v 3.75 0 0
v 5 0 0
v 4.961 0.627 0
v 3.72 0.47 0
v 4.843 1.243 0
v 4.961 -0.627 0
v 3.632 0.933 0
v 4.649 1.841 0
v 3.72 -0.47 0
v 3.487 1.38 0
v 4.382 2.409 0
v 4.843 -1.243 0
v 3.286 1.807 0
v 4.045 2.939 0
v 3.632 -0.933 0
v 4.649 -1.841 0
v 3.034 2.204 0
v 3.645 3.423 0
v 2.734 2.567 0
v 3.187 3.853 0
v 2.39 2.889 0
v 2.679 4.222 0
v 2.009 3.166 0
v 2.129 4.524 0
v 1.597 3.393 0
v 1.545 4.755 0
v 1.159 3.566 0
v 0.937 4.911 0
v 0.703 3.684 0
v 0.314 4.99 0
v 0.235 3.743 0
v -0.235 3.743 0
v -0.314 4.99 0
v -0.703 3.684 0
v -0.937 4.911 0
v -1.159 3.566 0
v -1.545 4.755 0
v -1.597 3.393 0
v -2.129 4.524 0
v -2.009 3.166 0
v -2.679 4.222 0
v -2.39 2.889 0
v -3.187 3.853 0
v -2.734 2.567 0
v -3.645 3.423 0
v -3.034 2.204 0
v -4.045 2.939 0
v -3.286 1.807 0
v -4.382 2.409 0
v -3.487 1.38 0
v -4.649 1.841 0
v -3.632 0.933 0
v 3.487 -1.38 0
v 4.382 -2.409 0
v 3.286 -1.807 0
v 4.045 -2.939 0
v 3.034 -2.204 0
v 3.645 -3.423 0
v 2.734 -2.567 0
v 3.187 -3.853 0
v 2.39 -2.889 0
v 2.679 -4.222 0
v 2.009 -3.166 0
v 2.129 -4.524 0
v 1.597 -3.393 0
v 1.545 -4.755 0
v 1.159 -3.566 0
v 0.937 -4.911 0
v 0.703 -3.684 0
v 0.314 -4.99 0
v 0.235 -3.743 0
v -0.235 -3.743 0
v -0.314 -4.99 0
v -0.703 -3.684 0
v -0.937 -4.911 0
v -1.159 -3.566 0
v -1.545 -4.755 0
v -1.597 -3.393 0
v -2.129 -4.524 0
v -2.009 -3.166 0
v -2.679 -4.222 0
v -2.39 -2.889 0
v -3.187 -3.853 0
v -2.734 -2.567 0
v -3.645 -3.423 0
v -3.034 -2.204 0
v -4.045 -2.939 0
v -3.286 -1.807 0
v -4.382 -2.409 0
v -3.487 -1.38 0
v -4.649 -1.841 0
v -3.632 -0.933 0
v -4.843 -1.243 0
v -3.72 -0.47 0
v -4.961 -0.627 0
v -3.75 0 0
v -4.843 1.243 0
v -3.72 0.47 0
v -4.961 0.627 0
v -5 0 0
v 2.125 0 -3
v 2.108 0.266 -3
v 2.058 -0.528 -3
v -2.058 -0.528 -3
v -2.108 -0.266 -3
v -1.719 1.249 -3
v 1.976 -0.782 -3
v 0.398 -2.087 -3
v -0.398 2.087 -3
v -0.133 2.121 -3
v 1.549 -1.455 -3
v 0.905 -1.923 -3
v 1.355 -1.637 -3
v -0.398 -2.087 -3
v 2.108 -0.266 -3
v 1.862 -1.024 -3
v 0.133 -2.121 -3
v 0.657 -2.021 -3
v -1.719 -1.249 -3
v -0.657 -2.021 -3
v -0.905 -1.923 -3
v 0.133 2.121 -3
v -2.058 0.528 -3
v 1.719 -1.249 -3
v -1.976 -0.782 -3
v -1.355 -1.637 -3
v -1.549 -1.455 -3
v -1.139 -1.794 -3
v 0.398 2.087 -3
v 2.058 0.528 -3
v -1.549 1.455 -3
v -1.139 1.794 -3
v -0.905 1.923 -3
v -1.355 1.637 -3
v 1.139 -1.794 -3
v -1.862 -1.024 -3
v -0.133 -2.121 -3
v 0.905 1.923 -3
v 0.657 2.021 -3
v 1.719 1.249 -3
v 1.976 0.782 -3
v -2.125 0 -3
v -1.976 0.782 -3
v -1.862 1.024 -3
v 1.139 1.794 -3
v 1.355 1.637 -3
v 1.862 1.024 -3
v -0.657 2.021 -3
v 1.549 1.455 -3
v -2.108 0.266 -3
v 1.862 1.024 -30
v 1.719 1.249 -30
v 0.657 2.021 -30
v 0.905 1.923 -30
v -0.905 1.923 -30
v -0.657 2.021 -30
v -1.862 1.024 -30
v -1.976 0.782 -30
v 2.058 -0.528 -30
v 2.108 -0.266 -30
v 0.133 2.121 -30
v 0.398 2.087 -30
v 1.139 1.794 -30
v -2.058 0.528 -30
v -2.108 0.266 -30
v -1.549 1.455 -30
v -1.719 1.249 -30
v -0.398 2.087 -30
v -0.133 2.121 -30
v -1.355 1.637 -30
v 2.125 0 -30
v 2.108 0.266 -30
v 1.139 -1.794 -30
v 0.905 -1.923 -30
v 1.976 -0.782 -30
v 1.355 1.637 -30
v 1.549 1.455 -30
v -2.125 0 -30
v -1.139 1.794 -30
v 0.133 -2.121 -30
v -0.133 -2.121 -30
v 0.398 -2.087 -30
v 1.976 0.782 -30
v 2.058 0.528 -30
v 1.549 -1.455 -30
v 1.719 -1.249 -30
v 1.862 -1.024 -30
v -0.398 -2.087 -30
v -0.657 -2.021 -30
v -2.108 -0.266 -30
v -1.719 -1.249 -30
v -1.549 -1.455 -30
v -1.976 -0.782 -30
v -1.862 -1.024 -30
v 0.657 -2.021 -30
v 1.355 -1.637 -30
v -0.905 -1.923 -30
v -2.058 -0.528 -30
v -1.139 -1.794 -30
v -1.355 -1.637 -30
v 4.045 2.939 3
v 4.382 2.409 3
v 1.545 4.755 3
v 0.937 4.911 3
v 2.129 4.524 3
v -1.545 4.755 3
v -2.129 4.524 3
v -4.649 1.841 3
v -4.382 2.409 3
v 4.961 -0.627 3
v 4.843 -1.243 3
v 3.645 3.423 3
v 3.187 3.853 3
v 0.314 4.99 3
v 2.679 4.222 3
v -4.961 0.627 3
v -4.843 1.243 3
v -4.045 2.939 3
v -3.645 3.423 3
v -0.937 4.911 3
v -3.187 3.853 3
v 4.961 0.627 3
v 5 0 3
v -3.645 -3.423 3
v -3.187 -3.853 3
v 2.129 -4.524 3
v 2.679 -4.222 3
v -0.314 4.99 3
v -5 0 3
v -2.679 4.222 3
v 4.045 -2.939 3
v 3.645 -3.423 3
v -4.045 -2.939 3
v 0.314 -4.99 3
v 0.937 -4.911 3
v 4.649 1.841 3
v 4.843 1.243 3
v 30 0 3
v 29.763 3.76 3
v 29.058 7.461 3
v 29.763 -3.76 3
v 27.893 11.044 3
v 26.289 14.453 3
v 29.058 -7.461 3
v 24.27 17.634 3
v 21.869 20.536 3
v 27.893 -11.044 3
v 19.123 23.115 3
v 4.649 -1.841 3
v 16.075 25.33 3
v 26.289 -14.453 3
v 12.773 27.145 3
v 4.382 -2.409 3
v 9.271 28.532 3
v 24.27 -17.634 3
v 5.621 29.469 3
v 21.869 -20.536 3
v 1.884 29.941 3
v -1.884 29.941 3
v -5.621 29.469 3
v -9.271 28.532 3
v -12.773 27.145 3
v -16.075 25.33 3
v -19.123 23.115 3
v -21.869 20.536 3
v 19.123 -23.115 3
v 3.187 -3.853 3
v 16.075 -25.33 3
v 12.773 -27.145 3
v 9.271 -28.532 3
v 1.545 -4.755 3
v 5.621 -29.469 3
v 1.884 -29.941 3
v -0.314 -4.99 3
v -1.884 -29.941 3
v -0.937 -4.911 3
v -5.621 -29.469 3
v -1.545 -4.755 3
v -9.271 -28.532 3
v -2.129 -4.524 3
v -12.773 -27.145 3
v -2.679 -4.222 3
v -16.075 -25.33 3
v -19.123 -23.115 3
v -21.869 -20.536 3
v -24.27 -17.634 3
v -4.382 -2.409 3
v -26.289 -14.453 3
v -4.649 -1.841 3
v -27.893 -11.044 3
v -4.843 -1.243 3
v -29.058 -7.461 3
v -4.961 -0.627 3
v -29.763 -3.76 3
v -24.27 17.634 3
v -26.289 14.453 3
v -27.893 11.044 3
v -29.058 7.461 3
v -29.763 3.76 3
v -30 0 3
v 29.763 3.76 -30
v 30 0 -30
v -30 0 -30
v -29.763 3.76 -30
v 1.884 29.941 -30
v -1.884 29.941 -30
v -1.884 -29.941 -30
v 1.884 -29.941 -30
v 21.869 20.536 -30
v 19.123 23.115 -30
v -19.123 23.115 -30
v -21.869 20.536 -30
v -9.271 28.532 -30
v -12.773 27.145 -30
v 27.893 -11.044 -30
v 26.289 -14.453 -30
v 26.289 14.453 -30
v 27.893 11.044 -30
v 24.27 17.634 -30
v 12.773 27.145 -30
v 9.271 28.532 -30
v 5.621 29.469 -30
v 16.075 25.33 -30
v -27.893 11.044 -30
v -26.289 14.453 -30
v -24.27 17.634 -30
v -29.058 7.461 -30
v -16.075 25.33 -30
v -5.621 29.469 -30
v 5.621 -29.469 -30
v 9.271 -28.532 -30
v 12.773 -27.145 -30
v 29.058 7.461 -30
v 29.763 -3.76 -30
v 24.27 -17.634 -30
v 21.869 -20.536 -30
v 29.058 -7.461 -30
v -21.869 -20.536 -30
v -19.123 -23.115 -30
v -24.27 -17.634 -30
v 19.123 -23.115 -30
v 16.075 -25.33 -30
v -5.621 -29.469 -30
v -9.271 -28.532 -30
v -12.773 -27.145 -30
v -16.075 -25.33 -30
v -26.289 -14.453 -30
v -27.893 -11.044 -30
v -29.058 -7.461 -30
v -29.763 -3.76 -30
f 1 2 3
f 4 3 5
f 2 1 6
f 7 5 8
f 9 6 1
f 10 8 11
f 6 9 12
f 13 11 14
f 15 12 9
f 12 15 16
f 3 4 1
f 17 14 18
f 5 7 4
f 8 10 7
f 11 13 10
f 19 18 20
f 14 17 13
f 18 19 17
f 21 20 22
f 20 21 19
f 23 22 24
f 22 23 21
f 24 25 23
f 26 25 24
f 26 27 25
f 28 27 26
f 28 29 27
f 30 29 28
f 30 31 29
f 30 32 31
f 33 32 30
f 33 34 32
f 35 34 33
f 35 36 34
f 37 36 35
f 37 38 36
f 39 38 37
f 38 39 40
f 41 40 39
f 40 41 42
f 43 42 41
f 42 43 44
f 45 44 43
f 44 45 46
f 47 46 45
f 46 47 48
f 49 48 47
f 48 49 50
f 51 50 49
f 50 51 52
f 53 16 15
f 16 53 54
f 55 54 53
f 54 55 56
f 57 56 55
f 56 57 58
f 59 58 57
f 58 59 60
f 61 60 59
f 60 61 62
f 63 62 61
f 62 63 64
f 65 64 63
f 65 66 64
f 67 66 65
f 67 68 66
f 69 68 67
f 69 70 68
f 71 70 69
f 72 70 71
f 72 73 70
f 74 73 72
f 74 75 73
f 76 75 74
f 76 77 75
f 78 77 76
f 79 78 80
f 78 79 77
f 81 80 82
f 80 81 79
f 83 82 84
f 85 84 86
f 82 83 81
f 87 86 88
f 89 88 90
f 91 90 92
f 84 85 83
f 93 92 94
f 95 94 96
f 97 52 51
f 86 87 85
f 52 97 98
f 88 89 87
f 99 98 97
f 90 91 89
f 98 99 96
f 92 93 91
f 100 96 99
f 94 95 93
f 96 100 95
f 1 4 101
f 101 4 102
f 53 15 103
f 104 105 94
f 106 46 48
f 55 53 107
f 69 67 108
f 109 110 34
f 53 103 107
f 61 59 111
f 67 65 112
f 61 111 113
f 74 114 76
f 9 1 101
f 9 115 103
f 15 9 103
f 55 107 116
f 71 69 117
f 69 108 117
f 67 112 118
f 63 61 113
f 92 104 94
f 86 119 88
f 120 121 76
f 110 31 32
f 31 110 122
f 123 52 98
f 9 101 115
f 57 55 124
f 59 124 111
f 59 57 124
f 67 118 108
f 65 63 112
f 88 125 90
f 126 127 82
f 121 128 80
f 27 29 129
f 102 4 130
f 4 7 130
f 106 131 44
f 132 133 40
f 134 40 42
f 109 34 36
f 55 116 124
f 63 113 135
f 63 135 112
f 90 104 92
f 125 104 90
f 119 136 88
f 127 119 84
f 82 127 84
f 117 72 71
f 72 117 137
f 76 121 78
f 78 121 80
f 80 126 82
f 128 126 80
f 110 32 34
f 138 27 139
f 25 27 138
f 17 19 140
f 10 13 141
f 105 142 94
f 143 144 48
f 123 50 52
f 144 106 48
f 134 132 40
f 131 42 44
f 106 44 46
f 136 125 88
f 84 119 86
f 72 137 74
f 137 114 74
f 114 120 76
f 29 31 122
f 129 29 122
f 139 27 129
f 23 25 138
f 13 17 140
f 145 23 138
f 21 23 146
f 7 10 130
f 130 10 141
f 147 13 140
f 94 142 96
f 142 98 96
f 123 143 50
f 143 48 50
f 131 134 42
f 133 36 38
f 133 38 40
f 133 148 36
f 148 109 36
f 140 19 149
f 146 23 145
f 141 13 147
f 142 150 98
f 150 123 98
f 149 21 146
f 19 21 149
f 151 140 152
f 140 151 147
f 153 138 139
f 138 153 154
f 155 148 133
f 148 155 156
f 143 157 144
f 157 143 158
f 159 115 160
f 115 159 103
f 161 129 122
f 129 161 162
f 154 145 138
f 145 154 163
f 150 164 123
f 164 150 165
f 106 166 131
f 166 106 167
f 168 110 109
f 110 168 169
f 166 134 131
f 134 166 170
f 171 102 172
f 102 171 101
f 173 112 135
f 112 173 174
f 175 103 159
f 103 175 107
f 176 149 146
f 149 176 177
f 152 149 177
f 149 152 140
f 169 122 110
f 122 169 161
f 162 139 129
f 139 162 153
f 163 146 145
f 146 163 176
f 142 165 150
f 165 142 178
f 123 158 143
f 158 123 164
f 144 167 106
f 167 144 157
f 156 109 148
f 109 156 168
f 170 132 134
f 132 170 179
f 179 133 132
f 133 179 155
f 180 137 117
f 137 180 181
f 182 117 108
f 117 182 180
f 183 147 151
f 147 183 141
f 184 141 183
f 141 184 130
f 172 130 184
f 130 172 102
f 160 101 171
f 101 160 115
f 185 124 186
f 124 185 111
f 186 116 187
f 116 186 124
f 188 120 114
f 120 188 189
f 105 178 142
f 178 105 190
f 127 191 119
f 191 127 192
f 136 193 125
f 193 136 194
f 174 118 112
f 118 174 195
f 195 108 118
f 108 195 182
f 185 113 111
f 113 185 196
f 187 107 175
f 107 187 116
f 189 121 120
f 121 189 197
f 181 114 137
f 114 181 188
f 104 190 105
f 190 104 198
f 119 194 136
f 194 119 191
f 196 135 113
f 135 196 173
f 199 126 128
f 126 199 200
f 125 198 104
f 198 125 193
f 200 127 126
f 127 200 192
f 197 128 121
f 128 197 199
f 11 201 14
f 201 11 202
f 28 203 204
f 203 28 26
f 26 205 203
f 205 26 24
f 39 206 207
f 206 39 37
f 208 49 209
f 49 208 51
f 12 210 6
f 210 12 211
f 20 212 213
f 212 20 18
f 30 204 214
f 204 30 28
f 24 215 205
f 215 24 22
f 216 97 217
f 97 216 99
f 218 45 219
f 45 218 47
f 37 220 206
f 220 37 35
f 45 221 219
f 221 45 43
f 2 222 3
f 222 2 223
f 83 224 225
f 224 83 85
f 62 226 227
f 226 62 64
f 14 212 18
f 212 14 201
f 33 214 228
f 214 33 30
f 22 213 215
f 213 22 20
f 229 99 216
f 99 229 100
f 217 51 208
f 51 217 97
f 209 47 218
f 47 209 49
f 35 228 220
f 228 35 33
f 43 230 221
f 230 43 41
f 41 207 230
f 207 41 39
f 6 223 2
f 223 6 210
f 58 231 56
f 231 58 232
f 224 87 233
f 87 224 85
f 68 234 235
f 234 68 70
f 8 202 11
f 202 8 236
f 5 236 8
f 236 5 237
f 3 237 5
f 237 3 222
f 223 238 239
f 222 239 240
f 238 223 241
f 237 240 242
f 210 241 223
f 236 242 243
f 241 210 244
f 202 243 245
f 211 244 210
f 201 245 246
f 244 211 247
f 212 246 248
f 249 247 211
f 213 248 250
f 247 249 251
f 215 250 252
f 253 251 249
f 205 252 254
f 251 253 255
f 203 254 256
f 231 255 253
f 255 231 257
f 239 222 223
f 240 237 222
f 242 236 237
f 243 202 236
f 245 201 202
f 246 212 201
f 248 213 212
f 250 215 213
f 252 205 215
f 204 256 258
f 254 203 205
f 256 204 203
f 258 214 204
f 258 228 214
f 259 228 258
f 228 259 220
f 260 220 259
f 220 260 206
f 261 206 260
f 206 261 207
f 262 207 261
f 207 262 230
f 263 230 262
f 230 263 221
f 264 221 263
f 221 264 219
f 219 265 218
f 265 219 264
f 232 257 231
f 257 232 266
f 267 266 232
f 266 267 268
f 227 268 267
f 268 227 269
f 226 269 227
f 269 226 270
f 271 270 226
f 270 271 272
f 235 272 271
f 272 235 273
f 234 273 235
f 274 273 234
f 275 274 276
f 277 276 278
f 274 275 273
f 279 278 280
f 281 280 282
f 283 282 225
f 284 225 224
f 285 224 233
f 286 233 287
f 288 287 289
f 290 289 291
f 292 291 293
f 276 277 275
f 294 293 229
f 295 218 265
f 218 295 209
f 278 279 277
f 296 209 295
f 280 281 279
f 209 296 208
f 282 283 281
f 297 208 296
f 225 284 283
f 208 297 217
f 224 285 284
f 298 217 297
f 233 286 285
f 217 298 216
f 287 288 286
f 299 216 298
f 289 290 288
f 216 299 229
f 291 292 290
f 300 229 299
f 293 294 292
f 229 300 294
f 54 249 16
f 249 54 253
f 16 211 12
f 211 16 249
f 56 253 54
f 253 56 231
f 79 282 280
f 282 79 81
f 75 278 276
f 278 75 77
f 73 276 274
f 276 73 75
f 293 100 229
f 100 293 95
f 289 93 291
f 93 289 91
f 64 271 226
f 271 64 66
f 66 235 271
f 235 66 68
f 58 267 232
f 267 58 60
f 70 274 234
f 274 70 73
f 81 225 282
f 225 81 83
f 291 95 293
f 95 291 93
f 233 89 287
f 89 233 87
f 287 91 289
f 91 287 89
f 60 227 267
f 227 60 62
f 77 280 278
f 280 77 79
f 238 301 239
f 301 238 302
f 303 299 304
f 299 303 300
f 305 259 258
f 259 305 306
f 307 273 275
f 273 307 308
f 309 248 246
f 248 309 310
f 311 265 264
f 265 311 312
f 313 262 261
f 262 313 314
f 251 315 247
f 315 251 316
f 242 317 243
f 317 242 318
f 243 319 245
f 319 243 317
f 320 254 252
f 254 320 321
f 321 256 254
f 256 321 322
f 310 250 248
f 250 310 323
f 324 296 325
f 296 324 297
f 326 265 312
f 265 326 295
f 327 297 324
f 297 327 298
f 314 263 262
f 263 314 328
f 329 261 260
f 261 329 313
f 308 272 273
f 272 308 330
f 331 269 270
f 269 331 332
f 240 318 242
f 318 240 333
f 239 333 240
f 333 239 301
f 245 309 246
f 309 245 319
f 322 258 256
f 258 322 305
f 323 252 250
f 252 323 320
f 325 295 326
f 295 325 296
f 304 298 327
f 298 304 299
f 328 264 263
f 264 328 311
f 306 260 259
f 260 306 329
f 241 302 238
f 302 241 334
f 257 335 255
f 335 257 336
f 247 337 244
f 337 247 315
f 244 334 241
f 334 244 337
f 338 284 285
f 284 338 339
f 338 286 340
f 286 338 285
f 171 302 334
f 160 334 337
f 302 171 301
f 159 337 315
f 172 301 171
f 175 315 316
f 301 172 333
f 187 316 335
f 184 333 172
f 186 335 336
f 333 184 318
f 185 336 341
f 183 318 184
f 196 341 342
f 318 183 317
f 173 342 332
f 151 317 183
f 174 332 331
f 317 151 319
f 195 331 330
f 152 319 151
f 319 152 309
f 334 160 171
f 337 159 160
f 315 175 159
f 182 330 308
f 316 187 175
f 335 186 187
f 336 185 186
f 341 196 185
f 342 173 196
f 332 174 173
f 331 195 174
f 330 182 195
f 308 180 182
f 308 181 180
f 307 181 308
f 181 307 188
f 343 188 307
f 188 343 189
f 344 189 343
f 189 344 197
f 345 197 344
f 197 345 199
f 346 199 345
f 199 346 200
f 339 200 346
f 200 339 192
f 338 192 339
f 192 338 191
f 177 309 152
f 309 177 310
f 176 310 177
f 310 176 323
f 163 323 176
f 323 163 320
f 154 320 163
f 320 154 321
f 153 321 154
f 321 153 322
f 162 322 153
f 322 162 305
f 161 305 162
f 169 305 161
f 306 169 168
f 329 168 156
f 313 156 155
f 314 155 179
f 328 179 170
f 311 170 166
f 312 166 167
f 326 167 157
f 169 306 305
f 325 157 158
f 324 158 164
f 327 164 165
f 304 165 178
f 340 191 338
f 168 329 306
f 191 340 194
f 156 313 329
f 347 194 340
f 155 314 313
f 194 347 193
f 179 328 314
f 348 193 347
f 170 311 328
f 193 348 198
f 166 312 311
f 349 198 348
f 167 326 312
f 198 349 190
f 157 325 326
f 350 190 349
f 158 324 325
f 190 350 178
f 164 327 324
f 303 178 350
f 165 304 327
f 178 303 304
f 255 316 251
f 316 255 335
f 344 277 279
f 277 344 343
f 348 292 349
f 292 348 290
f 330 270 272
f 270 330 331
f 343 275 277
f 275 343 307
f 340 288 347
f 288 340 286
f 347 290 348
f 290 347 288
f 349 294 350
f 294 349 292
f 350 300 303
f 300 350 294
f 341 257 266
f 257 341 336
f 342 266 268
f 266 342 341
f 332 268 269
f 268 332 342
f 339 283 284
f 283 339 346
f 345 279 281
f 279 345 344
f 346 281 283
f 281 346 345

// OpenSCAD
$fn = 50;


difference() {
	union() {
		translate(v = [0, 0, -30.0000000000]) {
			cylinder(h = 33, r = 30.0000000000);
		}
	}
	union() {
		translate(v = [0, 0, 0]) {
			rotate(a = [0, 0, 0]) {
				difference() {
					union() {
						translate(v = [0, 0, -33.0000000000]) {
							cylinder(h = 33, r = 2.0000000000);
						}
						translate(v = [0, 0, -3]) {
							cylinder(h = 3, r1 = 2.1250000000, r2 = 3.7500000000);
						}
						translate(v = [0, 0, -33.0000000000]) {
							cylinder(h = 33, r = 2.1250000000);
						}
						translate(v = [0, 0, -33.0000000000]) {
							cylinder(h = 33, r = 2.0000000000);
						}
					}
					union();
				}
			}
		}
		#cylinder(h = 3, r = 5.0000000000);
	}
}
